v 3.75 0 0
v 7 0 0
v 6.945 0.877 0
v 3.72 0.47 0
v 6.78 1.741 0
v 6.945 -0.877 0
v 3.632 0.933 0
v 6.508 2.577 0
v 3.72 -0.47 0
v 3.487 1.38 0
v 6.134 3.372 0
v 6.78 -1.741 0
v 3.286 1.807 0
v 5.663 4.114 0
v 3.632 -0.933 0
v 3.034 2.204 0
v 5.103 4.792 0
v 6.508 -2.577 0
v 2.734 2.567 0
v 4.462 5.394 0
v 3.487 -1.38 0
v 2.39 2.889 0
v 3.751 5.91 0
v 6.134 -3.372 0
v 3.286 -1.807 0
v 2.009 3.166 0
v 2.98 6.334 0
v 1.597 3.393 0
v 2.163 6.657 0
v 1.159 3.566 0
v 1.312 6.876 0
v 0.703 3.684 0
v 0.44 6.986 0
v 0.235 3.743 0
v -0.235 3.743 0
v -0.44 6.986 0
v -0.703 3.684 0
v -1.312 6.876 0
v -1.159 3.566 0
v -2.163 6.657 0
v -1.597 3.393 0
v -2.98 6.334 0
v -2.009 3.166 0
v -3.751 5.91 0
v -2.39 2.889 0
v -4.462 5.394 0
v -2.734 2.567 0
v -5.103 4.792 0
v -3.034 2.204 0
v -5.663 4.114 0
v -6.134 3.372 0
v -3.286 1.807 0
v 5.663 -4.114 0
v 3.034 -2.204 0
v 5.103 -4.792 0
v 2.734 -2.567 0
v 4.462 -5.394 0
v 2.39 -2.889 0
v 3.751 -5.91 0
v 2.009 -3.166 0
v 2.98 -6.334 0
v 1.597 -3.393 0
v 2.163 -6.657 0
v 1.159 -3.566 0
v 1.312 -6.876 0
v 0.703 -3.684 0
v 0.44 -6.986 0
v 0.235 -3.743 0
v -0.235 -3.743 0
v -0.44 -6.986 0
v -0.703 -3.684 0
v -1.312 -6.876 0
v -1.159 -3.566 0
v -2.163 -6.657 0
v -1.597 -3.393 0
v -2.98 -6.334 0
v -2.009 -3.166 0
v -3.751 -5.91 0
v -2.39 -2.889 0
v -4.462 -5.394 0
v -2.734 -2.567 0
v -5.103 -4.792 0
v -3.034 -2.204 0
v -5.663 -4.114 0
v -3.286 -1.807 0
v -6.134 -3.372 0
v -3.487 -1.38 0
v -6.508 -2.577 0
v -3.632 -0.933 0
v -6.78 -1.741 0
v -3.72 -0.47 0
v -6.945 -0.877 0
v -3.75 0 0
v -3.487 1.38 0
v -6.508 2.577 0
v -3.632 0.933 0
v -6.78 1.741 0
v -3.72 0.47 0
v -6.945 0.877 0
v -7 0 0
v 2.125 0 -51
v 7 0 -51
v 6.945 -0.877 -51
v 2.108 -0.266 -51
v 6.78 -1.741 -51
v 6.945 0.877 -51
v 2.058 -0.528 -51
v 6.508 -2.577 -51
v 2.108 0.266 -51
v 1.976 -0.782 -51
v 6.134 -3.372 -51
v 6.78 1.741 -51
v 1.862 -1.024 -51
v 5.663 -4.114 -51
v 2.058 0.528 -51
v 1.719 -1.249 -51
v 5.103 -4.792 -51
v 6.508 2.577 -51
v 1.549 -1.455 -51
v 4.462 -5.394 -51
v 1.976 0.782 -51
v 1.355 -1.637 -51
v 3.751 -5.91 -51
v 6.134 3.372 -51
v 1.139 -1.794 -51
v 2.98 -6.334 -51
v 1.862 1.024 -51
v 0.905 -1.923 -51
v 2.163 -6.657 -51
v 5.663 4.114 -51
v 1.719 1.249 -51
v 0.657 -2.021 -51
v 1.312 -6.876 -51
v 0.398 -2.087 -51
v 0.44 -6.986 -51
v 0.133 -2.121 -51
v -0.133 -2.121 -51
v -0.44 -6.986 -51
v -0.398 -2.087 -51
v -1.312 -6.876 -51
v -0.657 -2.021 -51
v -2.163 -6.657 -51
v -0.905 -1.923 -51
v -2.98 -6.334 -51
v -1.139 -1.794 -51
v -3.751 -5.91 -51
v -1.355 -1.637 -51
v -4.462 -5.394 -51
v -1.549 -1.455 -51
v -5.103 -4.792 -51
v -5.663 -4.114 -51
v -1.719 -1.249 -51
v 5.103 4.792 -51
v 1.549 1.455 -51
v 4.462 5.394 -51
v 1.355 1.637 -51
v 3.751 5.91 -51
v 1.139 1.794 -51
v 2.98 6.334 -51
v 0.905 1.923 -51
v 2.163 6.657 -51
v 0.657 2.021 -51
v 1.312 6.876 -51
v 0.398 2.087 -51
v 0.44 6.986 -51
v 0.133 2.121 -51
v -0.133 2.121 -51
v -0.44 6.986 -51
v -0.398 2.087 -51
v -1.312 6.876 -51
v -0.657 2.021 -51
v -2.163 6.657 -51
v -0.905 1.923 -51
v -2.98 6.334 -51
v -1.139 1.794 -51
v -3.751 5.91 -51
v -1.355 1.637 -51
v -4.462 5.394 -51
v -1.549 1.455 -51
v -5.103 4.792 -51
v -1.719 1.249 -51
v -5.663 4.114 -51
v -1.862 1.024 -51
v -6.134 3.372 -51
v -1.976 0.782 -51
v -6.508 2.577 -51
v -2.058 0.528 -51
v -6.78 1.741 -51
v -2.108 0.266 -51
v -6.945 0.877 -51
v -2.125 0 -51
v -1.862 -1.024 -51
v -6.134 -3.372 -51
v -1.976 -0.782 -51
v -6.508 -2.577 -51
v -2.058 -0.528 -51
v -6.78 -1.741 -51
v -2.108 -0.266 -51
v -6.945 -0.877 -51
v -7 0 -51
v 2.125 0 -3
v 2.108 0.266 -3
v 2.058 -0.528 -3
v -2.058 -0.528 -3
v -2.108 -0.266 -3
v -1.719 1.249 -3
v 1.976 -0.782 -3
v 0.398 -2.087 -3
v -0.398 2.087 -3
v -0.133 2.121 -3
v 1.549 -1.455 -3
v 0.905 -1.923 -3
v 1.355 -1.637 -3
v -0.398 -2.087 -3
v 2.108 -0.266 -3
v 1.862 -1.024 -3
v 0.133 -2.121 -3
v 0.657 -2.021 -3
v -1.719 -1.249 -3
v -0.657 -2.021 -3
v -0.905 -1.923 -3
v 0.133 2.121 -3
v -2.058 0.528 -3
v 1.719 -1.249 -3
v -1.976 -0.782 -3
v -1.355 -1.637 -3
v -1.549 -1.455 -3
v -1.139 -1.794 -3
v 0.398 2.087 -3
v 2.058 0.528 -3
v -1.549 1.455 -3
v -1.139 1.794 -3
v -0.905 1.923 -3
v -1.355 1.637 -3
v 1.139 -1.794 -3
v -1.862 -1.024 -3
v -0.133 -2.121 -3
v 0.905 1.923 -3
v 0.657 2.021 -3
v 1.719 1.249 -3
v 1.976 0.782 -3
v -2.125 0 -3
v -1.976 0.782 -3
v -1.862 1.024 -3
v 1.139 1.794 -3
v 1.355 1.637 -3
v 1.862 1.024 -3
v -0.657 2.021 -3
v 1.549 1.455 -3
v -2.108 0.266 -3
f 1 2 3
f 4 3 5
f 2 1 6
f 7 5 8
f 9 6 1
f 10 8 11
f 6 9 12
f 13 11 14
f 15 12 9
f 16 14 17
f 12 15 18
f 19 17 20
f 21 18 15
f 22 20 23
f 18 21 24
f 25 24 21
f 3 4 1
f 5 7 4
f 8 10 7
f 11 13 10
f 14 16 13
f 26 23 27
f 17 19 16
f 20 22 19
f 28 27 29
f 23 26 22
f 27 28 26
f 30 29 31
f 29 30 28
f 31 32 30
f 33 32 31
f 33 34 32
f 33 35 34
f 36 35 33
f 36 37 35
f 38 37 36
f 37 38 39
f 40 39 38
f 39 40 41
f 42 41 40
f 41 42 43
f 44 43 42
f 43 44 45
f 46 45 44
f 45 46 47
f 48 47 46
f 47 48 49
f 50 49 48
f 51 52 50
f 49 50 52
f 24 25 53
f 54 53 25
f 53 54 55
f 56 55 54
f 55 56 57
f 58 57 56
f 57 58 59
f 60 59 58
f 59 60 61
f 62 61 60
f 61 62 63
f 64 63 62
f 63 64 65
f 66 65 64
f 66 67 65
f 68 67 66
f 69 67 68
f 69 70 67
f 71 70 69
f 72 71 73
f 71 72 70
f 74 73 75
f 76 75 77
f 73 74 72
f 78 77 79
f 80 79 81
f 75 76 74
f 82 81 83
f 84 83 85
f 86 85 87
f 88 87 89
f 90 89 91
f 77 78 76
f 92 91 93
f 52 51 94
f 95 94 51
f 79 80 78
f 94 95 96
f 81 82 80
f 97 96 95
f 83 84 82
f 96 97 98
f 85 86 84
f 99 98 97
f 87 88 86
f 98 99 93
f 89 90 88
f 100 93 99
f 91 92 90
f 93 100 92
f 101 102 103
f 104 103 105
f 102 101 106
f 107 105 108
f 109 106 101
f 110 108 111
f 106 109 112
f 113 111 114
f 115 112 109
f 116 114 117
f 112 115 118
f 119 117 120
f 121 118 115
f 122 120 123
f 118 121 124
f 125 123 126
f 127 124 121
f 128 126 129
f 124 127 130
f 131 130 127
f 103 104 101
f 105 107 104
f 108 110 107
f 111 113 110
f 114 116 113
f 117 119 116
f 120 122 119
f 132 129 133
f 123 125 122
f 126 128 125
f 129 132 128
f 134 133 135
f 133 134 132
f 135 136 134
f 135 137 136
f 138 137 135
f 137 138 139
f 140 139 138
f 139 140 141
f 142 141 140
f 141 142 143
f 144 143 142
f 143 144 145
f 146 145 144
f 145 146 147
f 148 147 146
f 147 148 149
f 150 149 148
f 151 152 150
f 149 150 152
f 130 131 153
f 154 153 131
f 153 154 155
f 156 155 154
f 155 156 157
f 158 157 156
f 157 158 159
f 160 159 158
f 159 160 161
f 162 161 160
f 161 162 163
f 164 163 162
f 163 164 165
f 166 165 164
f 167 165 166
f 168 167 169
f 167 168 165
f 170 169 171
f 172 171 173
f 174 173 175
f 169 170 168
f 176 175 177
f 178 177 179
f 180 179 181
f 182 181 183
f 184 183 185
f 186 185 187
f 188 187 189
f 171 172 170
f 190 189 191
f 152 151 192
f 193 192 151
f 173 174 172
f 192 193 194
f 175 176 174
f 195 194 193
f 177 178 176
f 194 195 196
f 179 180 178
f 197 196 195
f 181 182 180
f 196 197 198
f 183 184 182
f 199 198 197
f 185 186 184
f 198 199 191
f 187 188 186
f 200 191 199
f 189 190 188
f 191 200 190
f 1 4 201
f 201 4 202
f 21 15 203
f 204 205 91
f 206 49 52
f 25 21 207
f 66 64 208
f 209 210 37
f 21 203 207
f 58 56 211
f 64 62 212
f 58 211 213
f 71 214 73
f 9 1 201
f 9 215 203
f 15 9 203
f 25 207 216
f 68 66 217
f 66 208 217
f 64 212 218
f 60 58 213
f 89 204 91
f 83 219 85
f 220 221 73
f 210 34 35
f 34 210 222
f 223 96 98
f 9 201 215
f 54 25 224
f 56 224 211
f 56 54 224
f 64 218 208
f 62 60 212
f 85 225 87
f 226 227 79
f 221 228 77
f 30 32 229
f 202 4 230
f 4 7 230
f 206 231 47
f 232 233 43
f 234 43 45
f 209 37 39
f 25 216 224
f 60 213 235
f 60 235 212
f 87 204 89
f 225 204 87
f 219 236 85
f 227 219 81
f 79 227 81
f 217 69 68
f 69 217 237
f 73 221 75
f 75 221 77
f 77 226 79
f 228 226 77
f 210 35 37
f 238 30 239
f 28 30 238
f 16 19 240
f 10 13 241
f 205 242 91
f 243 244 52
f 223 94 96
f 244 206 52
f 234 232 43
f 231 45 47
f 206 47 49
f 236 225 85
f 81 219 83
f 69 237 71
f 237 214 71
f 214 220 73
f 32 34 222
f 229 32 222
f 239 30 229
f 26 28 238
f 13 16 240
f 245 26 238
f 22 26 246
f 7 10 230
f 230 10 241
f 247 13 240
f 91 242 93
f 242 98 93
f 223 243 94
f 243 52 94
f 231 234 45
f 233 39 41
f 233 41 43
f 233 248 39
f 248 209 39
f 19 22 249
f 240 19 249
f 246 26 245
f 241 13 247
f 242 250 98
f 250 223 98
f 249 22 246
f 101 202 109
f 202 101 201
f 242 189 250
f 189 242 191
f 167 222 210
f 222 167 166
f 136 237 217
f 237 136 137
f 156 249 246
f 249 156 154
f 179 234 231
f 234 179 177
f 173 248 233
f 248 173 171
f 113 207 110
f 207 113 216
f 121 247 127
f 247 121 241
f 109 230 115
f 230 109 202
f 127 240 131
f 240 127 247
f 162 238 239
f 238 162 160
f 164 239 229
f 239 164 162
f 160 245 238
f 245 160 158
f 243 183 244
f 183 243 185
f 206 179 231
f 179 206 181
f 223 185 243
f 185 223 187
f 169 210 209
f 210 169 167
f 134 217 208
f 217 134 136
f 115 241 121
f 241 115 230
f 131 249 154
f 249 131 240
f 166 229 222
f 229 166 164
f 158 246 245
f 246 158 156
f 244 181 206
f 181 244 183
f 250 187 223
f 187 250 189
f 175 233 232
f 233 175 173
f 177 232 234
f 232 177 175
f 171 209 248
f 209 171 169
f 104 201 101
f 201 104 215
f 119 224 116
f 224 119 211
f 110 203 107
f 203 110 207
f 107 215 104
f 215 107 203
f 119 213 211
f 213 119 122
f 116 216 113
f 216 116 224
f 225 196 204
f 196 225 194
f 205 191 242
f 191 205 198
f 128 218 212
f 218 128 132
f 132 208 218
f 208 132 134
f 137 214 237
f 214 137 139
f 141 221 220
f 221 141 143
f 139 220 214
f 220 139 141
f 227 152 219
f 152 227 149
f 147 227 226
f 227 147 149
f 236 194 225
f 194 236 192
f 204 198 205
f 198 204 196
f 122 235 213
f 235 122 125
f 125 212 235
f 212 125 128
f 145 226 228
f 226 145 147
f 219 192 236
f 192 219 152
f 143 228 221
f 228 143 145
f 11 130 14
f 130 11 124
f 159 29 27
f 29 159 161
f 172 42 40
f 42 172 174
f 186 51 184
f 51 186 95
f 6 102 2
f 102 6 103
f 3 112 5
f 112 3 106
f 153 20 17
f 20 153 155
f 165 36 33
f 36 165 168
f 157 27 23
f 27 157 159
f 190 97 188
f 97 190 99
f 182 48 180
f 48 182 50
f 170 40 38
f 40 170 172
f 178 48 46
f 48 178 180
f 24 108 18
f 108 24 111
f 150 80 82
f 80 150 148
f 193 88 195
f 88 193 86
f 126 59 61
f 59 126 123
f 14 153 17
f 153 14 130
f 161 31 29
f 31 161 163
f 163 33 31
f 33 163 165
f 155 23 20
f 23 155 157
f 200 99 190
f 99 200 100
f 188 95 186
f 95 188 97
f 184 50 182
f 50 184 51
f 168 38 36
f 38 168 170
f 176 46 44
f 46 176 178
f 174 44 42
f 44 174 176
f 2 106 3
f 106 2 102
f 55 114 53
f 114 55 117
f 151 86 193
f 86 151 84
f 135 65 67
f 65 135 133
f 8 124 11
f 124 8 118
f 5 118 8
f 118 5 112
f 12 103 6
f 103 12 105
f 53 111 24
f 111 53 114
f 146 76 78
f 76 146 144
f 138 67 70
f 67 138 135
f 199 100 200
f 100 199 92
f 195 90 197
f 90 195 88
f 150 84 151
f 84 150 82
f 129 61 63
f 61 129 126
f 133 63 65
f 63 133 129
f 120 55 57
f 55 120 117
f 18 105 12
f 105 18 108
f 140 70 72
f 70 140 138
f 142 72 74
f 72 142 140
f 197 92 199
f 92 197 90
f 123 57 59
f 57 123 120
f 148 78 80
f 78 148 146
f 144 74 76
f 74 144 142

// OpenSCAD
$fn = 50;


difference() {
	union() {
		translate(v = [0, 0, -51.0000000000]) {
			cylinder(h = 51, r = 7.0000000000);
		}
		cylinder(h = 0, r = 17.0000000000);
	}
	union() {
		translate(v = [0, 0, 0]) {
			rotate(a = [0, 0, 0]) {
				difference() {
					union() {
						#translate(v = [0, 0, -51.0000000000]) {
							cylinder(h = 51, r = 2.0000000000);
						}
						#translate(v = [0, 0, -3]) {
							cylinder(h = 3, r1 = 2.1250000000, r2 = 3.7500000000);
						}
						#translate(v = [0, 0, -51.0000000000]) {
							cylinder(h = 51, r = 2.1250000000);
						}
						#translate(v = [0, 0, -51.0000000000]) {
							cylinder(h = 51, r = 2.0000000000);
						}
					}
					union();
				}
			}
		}
	}
}
